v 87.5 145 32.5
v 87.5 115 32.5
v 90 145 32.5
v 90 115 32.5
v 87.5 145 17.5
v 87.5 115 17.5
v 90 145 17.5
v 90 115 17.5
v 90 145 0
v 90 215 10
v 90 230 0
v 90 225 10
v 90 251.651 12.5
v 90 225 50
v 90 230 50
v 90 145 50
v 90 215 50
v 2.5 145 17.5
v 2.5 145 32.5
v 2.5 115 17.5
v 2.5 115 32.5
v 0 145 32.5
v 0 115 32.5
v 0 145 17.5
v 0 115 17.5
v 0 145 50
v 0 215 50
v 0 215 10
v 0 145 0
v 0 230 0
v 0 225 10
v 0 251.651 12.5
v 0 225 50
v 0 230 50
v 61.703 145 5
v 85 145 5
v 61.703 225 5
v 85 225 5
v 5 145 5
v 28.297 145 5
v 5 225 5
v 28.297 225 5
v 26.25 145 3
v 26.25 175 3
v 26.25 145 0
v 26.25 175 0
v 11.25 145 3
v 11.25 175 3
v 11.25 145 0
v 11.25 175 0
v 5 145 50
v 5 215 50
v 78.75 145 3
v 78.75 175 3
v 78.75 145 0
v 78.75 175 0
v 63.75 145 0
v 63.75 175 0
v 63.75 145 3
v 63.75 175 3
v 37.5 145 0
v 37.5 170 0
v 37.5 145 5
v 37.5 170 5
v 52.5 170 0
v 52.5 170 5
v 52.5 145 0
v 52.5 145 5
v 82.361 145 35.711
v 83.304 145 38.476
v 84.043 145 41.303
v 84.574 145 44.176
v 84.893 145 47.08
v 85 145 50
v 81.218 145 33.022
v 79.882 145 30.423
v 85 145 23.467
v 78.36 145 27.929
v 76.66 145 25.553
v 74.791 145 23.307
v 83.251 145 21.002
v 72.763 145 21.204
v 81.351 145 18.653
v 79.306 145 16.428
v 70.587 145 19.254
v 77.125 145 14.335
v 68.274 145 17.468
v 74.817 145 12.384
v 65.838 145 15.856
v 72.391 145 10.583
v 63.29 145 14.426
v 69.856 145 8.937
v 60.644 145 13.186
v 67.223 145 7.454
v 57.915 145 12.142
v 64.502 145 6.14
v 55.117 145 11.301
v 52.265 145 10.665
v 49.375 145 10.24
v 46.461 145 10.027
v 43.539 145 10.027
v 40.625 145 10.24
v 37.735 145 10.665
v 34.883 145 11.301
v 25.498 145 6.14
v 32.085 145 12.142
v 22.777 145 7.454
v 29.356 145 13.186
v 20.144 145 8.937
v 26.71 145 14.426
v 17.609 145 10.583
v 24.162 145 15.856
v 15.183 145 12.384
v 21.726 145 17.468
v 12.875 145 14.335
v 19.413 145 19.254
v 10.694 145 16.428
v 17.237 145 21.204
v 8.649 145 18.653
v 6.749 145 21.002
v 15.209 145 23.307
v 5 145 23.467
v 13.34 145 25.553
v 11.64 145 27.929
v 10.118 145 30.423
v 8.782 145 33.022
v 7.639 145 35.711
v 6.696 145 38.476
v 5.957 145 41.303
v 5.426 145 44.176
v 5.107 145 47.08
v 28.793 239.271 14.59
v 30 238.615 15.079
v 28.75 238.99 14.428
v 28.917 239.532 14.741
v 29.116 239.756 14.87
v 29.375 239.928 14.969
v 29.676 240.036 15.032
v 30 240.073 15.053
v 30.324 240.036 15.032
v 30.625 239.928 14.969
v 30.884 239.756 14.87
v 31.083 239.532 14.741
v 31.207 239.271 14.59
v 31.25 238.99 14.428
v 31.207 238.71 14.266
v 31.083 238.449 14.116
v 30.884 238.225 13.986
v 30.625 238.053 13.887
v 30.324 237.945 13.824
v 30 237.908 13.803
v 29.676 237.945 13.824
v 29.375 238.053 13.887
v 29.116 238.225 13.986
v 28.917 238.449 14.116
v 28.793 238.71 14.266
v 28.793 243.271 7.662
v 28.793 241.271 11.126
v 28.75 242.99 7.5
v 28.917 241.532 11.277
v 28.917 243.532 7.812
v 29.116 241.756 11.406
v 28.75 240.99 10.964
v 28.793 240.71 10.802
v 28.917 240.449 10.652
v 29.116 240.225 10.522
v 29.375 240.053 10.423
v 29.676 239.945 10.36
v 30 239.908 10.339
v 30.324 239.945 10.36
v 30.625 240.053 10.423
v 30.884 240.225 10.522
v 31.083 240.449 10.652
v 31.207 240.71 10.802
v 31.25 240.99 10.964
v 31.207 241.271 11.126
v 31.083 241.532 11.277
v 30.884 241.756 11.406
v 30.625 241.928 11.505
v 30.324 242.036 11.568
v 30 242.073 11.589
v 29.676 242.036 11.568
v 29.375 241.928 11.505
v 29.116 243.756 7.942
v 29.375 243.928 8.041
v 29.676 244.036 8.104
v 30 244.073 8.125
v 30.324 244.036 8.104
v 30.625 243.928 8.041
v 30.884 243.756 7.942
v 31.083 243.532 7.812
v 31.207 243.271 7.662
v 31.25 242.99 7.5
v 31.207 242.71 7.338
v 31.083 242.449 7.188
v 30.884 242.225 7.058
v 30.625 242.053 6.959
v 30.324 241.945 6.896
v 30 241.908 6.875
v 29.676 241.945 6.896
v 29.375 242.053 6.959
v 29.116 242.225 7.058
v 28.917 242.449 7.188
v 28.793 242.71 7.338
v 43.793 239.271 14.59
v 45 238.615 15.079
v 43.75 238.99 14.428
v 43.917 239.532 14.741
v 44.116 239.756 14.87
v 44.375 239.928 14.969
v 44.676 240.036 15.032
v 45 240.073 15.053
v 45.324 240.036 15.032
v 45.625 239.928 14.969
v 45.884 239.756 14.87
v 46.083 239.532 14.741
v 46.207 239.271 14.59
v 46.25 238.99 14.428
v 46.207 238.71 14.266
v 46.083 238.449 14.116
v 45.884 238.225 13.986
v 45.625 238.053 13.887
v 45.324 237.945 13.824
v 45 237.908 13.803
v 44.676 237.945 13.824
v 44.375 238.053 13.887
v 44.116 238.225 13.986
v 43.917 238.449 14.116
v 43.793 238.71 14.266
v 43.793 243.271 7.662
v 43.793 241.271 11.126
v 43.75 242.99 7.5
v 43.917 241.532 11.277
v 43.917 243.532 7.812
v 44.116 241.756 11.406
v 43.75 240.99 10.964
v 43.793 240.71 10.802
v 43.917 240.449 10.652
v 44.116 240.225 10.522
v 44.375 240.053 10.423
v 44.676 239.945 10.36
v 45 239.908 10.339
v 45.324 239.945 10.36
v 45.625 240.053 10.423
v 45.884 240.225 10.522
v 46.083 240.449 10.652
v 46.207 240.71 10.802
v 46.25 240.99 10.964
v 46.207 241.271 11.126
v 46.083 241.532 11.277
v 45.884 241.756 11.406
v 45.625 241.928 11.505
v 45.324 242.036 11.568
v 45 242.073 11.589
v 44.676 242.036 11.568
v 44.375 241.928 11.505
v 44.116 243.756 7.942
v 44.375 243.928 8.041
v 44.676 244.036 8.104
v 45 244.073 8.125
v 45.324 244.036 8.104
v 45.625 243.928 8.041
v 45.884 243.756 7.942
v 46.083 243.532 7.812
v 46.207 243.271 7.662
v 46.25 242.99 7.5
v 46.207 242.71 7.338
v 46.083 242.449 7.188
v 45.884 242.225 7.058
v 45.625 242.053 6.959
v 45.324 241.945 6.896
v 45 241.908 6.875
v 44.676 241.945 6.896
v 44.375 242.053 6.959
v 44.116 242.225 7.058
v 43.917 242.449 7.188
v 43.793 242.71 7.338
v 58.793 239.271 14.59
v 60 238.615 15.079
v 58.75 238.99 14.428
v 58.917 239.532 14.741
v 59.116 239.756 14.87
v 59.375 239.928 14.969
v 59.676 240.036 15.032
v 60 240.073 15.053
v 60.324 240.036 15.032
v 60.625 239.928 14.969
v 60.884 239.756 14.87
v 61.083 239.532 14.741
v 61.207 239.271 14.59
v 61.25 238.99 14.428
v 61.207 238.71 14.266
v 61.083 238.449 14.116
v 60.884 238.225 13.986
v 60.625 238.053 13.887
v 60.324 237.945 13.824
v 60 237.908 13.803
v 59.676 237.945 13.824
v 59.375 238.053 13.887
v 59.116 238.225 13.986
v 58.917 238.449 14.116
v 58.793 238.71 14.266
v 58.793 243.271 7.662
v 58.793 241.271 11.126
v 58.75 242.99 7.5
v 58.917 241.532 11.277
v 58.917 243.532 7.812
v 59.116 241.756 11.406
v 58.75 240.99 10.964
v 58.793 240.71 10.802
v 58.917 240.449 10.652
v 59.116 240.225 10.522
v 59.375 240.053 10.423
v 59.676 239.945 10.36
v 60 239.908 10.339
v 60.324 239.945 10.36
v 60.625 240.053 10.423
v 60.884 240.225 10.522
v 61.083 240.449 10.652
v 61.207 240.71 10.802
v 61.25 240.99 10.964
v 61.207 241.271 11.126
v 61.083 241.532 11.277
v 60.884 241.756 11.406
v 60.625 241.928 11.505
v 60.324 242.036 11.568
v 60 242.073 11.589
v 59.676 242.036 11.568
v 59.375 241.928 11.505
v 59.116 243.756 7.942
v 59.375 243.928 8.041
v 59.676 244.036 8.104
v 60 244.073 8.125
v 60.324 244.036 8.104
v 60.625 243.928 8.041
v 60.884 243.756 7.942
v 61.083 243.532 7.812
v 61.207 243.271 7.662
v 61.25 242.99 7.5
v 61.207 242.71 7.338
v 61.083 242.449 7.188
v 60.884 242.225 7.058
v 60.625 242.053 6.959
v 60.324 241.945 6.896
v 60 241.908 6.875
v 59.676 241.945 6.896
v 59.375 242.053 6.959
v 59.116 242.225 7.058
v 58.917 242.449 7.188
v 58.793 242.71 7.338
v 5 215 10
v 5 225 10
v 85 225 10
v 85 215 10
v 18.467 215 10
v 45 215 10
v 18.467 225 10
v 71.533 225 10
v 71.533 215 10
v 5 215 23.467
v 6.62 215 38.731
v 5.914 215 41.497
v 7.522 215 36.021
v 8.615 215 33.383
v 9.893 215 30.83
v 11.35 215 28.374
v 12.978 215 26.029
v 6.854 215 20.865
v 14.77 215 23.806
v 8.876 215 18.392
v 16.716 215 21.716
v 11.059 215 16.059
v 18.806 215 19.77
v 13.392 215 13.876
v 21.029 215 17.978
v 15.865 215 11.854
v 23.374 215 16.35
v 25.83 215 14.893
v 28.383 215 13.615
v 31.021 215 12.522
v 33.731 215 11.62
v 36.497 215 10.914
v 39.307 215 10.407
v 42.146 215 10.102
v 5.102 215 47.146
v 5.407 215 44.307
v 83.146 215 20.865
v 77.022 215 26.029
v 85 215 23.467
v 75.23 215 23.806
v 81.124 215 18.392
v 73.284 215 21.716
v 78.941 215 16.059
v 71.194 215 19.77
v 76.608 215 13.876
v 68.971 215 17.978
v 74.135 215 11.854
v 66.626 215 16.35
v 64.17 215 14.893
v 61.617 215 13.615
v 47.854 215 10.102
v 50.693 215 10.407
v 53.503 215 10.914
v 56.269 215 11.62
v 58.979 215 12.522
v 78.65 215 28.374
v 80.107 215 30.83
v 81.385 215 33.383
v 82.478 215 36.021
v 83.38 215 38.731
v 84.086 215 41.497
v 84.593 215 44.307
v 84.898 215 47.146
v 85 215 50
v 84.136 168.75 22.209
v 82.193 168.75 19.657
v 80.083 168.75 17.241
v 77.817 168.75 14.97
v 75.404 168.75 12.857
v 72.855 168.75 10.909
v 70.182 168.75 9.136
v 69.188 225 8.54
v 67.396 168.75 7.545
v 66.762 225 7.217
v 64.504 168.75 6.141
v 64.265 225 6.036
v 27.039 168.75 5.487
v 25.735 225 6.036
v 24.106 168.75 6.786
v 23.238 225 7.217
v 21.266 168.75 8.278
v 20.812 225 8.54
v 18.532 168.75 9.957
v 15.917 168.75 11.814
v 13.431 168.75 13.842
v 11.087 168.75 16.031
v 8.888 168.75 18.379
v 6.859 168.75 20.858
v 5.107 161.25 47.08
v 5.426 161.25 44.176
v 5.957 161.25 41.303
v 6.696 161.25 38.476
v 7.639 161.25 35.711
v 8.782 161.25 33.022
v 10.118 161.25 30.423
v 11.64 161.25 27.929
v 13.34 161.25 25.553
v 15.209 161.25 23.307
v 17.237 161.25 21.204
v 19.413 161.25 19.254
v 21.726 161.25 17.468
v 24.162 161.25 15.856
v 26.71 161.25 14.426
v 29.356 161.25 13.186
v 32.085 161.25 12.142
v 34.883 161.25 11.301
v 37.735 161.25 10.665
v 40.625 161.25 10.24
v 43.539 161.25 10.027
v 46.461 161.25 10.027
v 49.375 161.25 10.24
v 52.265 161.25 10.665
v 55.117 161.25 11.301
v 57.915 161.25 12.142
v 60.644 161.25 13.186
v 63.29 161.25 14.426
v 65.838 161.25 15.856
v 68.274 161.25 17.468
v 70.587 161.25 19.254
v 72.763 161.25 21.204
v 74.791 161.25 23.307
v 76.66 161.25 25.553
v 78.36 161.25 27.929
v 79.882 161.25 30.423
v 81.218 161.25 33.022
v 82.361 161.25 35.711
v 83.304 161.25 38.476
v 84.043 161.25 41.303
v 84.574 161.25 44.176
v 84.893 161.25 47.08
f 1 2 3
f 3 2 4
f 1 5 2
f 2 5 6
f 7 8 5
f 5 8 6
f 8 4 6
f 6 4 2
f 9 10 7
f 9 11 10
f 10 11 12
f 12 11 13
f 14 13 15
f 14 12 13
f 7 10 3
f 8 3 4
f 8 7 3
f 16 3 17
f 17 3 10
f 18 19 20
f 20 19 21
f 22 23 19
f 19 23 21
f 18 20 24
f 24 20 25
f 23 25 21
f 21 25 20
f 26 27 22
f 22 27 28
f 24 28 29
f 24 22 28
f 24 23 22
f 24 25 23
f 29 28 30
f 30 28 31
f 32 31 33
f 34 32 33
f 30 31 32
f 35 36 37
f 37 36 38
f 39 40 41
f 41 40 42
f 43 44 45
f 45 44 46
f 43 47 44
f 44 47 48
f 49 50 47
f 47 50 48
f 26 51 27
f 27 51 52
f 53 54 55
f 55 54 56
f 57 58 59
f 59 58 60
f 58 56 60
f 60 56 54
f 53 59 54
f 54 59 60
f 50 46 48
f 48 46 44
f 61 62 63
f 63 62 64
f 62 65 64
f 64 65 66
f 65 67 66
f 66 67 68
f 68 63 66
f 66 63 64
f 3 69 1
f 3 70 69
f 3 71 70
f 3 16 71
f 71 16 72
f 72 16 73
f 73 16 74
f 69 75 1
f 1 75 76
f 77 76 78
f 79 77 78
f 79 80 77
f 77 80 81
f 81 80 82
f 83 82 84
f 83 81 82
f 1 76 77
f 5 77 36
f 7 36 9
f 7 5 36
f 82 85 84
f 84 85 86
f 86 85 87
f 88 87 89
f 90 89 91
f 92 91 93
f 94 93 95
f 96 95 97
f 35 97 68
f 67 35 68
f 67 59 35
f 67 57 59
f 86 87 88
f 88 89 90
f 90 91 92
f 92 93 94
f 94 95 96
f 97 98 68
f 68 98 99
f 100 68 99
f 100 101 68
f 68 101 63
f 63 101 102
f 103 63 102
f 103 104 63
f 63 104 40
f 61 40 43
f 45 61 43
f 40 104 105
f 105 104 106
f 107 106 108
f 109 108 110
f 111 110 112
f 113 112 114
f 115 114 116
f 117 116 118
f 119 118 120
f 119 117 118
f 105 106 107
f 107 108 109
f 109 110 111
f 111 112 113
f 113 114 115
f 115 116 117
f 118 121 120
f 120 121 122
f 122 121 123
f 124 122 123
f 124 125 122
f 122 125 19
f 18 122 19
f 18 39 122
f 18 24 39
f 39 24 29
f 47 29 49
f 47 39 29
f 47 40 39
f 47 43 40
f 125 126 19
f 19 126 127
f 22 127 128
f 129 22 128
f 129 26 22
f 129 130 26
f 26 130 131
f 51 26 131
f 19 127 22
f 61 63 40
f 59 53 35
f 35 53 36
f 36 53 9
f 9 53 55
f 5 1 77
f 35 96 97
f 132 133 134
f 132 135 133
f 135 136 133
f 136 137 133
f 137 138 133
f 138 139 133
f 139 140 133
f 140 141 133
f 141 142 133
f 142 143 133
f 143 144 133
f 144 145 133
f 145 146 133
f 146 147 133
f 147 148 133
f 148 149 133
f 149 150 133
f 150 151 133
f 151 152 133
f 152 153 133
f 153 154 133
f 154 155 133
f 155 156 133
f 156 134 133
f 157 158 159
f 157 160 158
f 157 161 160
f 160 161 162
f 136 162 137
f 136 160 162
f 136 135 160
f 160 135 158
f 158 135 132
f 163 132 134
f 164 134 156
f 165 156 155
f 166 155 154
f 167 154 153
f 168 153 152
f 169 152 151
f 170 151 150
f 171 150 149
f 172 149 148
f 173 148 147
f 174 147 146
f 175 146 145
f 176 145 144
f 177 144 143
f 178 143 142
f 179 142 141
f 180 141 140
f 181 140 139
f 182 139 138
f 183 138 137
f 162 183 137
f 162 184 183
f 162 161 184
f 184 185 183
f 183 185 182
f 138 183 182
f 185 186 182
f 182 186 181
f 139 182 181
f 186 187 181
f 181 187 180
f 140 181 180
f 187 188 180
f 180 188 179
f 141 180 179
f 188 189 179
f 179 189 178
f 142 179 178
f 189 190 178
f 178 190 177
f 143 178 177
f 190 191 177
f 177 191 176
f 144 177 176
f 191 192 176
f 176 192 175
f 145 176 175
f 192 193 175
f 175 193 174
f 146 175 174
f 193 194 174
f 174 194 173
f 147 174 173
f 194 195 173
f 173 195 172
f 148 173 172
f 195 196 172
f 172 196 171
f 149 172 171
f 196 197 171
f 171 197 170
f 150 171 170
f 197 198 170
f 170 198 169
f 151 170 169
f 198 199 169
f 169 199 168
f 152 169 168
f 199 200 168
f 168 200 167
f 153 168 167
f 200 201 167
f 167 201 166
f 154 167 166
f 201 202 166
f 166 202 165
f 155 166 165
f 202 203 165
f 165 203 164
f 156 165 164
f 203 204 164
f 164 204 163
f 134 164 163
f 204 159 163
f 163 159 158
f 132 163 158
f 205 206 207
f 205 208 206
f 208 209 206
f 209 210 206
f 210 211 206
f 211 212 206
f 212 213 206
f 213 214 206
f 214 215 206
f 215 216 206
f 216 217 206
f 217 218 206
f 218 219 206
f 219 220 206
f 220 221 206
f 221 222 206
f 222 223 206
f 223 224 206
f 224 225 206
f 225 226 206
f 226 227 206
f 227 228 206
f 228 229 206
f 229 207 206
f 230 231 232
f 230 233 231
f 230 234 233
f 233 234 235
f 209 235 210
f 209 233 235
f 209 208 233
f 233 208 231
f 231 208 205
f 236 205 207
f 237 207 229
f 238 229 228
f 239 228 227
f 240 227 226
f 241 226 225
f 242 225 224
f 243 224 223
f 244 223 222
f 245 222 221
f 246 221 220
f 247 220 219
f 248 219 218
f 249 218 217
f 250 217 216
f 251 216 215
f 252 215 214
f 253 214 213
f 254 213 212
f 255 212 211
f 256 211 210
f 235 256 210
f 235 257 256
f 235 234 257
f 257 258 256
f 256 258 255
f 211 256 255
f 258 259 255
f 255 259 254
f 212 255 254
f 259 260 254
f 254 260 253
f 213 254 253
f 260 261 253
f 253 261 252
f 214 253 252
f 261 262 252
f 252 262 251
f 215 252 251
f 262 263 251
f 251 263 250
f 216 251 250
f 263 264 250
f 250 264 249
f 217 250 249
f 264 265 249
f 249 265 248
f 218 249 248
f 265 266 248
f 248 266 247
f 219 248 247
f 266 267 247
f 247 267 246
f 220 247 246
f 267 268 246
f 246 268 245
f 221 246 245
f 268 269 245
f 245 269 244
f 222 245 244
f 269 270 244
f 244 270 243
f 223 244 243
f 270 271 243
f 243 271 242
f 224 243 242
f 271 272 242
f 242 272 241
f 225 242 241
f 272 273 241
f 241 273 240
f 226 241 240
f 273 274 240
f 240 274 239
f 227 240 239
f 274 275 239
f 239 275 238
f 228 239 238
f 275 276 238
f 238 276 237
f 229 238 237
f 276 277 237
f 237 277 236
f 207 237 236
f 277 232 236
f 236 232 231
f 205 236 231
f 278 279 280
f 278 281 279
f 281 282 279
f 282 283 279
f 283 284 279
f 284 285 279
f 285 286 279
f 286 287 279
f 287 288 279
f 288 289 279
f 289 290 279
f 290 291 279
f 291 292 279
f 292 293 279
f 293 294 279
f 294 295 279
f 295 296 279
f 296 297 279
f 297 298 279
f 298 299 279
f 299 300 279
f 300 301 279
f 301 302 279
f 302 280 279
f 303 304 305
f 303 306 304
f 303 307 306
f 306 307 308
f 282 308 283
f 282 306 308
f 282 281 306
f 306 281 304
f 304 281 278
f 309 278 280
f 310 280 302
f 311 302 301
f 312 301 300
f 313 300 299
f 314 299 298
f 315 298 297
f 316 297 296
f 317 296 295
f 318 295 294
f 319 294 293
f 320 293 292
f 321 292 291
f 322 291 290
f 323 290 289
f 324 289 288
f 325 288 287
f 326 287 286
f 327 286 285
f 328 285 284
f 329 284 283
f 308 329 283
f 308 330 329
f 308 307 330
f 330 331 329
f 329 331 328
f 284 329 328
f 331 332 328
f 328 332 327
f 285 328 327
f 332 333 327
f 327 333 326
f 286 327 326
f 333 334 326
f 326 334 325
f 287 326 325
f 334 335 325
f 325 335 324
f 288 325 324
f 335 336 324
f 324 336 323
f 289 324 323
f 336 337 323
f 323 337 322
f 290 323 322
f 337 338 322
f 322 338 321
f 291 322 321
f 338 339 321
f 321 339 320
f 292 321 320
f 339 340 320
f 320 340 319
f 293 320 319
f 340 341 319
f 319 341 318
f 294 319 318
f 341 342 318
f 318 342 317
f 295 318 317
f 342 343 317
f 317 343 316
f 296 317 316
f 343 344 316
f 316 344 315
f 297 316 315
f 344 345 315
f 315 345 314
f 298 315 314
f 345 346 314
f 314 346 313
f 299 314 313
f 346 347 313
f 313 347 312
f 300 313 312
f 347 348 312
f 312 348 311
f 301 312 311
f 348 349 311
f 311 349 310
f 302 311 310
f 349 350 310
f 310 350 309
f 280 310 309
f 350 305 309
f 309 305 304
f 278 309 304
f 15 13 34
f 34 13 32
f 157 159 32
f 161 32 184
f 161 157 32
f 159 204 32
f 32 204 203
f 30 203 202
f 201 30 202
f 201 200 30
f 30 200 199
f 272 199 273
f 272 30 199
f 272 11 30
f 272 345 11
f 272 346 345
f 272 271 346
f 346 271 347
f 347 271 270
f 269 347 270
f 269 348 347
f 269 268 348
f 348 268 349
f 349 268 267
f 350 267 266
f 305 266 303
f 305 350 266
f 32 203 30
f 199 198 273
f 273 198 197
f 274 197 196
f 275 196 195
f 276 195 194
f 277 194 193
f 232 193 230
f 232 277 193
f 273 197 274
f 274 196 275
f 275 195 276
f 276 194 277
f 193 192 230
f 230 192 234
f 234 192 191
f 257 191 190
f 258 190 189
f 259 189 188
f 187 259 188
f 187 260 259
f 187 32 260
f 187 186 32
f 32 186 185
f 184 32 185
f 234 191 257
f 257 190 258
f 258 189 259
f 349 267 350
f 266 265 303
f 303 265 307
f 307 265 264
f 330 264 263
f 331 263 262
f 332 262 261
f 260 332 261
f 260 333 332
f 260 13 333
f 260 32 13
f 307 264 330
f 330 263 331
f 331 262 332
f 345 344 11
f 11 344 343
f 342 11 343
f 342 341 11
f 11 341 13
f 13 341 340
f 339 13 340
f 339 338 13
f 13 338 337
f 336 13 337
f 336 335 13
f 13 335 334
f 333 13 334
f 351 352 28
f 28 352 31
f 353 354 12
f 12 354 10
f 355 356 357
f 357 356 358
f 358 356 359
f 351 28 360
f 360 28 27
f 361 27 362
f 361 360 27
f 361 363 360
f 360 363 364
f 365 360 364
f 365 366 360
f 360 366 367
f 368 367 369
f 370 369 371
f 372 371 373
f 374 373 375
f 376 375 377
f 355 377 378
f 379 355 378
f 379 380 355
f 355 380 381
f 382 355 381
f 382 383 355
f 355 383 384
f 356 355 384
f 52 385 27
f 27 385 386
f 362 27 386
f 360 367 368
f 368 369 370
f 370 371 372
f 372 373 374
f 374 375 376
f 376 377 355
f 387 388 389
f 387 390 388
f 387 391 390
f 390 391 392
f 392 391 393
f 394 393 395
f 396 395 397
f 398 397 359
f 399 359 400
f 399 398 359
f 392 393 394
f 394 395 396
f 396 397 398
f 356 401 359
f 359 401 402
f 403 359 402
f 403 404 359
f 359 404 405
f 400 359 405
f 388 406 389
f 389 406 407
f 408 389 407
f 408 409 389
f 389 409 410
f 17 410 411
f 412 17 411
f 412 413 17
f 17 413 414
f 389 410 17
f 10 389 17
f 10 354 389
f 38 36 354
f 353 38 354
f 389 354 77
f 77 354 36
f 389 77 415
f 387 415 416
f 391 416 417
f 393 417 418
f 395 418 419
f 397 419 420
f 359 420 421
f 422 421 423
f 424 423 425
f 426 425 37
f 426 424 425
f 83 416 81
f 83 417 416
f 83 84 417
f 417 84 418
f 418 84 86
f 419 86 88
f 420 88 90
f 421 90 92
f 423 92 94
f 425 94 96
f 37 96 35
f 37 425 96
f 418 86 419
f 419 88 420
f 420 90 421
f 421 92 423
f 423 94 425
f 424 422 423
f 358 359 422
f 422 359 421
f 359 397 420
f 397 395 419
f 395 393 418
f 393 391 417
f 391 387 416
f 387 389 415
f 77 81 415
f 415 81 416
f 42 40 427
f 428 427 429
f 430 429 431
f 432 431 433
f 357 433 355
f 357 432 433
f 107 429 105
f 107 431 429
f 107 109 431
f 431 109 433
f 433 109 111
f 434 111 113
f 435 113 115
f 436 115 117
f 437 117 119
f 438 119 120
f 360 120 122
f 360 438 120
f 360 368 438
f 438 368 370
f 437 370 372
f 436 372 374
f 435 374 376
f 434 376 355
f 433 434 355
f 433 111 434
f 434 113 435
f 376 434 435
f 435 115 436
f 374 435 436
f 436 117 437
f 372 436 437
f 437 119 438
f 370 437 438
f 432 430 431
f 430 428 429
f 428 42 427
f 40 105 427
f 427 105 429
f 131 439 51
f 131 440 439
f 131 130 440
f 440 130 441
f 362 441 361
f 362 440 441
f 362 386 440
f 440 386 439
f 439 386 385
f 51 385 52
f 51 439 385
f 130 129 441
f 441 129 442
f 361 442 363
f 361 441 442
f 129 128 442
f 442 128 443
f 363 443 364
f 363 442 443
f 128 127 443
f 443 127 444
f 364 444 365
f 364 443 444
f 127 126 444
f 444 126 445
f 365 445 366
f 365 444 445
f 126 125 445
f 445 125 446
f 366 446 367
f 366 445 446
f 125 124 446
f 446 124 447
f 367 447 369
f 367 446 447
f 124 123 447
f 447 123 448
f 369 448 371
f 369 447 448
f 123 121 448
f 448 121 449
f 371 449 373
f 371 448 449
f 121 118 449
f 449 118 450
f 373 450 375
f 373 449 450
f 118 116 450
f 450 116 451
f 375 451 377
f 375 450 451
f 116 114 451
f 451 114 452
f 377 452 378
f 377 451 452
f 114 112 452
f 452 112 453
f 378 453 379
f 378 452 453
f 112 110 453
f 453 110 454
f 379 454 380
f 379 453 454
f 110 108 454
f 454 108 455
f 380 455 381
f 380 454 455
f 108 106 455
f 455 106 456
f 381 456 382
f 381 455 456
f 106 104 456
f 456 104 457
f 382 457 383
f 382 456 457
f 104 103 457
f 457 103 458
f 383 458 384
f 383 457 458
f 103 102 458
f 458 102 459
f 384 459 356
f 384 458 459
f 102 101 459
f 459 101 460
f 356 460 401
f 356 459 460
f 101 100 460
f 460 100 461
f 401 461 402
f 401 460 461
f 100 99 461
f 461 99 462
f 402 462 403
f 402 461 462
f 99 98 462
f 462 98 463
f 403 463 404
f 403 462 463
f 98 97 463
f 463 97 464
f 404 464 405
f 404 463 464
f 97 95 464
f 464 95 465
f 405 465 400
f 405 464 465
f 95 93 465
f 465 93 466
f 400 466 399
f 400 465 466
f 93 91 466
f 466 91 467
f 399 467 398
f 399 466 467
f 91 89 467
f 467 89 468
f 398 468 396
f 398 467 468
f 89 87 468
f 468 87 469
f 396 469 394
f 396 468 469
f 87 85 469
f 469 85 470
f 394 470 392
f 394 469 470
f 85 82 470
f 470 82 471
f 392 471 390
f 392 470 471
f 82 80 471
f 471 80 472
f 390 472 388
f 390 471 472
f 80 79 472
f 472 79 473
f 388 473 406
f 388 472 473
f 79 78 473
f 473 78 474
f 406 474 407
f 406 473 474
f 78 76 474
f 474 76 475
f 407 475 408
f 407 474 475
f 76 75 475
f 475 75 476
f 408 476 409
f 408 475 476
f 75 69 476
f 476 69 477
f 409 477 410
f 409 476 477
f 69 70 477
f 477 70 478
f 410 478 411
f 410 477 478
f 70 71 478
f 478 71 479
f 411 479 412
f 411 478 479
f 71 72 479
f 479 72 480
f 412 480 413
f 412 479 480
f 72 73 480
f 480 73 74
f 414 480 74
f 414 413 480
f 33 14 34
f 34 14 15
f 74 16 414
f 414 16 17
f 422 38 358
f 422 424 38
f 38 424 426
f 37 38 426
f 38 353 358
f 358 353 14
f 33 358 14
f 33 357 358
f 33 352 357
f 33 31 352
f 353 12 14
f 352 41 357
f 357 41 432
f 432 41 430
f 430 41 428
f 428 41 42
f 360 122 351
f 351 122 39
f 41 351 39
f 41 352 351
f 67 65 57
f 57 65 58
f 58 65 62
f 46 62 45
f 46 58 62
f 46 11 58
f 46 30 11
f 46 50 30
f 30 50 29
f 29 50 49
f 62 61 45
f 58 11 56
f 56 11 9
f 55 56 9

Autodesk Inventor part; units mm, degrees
ref_plane "YZ Plane" through (0, 0, 0) normal (1, 0, 0) x (0, 1, 0)
ref_plane "XZ Plane" through (0, 0, 0) normal (0, 1, 0) x (-1, 0, 0)
ref_plane "XY Plane" through (0, 0, 0) normal (0, 0, 1) x (1, 0, 0)
sketch "スケッチ1" plane through (0, 0, 0) normal (0, 1, 0) x (-1, 0, 0)
  line L0 (0, 0) -> (-90, 0)
  line L1 (-90, 0) -> (-90, 50)
  line L2 (0, 50) -> (0, 0)
  line L3 (0, 0) -> (-5, 0)
  line L4 (-5, 0) -> (-5, 50)
  line L5 (-5, 0) -> (-90, 0)
  line L6 (-90, 0) -> (-85, 0)
  line L7 (-85, 0) -> (-85, 50)
  arc A0 (-85, 50) -> (-5, 50) centre (-45, 50) ccw
  line L8 (0, 0) -> (0, 10)
  line L9 (0, 10) -> (-90, 10)
  circle A1 centre (-45, 50) radius 45
  line L10 (-90, 5) -> (0, 5)
  line L11 (-90, 50) -> (-85, 50)
  line L12 (-5, 50) -> (0, 50)
  line L13 (0, 0) -> (-90, 0)
  line L14 (-90, 0) -> (-90, 5)
  line L15 (-90, 5) -> (0, 5)
  line L16 (0, 5) -> (0, 0)
  dimension "d0" = 90
  dimension "d1" = 50
  dimension "d2" = 5
  dimension "d3" = 85
  dimension "d4" = 5
  dimension "d5" = 80
  dimension "d6" = 10
  dimension "d7" = 90
extrude "押し出し1" add sketch "スケッチ1" along normal blind 230 contours L0 L4 L10 L2 | L0 L7 L10 L4 | L10 L4 L9 L2 | L0 L1 L10 L7 | L10 A1 L9 L4 | L9 L4 A1 L2 | L10 L1 L9 L7 | L7 L9 A1 L10 | L9 A1 L4 | A1 L9 | A1 L4 L12 | L9 L1 A1 L7 | L7 A1 L9 | A1 L9 A0 L4 | A1 L7 A0 L9 | L11 L7 A1
sketch "スケッチ2" plane through (0, 0, 0) normal (0, -1, 0) x (1, 0, 0)
  line L0 (0, 0) -> (0, 50) projected
  line L1 (90, 0) -> (0, 0) projected
  line L2 (90, 50) -> (90, 0) projected
  line L3 (85, 50) -> (90, 50) projected
  arc A0 (5, 50) -> (85, 50) centre (45, 50) ccw projected
  line L4 (0, 50) -> (5, 50) projected
  arc A1 (5, 23.467) -> (85, 23.467) centre (45, 50) ccw
  line L5 (0, 5) -> (90, 5)
  line L6 (5, 23.467) -> (5, 5)
  line L7 (85, 23.467) -> (85, 5)
  dimension "d29" = 48
extrude "押し出し2" cut sketch "スケッチ2" against normal blind 225 contours L6 A1 L5 | L5 A1 L7
sketch "スケッチ3" plane through (0, 230, 0) normal (0, 1, 0) x (1, 0, 0)
  arc A0 (85, -50) -> (5, -50) centre (45, -50) ccw projected
  line L0 (90, -50) -> (90, 0) projected
  line L1 (0, -50) -> (5, -50) projected
  arc A1 (85, -50) -> (5, -50) centre (45, -50) ccw
  line L2 (5, -50) -> (85, -50)
extrude "押し出し3" add sketch "スケッチ3" against normal blind 5
sketch "スケッチ4" plane through (90, 0, 50) normal (1, 0, 0) x (0, 0, -1)
  line L0 (0, 0) -> (50, 0) projected
  line L1 (0, 0) -> (0, 230) projected
  line L2 (25, 0) -> (25, 65)
  line L3 (25, 65) -> (25, 75)
  line L4 (25, 75) -> (25, 215)
  line L5 (25, 215) -> (25, 225)
  line L6 (0, 65) -> (40, 65)
  line L7 (40, 65) -> (40, 75)
  line L8 (40, 75) -> (0, 75)
  line L9 (0, 75) -> (0, 65)
  line L10 (0, 215) -> (40, 215)
  line L11 (40, 215) -> (40, 225)
  line L12 (40, 225) -> (0, 225)
  line L13 (0, 225) -> (0, 215)
  dimension "d16" = 65
  dimension "d17" = 10
  dimension "d18" = 140
  dimension "d19" = 10
  dimension "d20" = 40
extrude "押し出し4" cut sketch "スケッチ4" against normal blind 90 contours L1 L8 L3 L6 | L3 L8 L7 L6 | L1 L12 L5 L10 | L5 L12 L11 L10
sketch "スケッチ6" plane through (90, 0, 50) normal (1, 0, 0) x (0, 0, -1)
  line L0 (0, 230) -> (50, 230) projected
  line L1 (50, 230) -> (37.5, 251.6506)
  line L2 (50, 230) -> (110, 230) construction
  line L3 (0, 230) -> (37.5, 251.6506)
  line L4 (0, 230) -> (43.3013, 230) construction
  dimension "d32" = 120
  dimension "d33" = 30
extrude "押し出し6" add sketch "スケッチ6" against normal blind 90
sketch "スケッチ9" plane through (0, 0, 0) normal (-1, 0, 0) x (0, 0, 1)
  line L0 (10, 225) -> (50, 225) projected
  line L1 (50, 225) -> (50, 230) projected
  line L2 (50, 230) -> (12.5, 251.6506) projected
  line L3 (12.5, 251.6506) -> (0, 230) projected
  line L4 (0, 0) -> (0, 230) projected
  line L5 (0, 0) -> (50, 0) projected
  line L6 (50, 0) -> (50, 65) projected
  line L7 (50, 65) -> (10, 65) projected
  line L8 (10, 65) -> (10, 75) projected
  line L9 (10, 75) -> (50, 75) projected
  line L10 (50, 75) -> (50, 215) projected
  line L11 (50, 215) -> (10, 215) projected
  line L12 (10, 215) -> (10, 225) projected
  line L13 (12.5, 251.6506) -> (0, 230)
  line L14 (0, 230) -> (-132.7906, 0)
  line L15 (0, 145) -> (-49.0748, 145)
  line L16 (0, 115) -> (-66.3953, 115)
  dimension "d45" = 30
sketch "スケッチ10" plane through (0, 0, 0) normal (-1, 0, 0) x (0, 0, 1)
  line L0 (10, 225) -> (50, 225) projected
  line L1 (50, 225) -> (50, 230) projected
  line L2 (50, 230) -> (12.5, 251.6506) projected
  line L3 (12.5, 251.6506) -> (0, 230) projected
  line L4 (0, 0) -> (0, 230) projected
  line L5 (0, 0) -> (50, 0) projected
  line L6 (50, 0) -> (50, 65) projected
  line L7 (50, 65) -> (10, 65) projected
  line L8 (10, 65) -> (10, 75) projected
  line L9 (10, 75) -> (50, 75) projected
  line L10 (50, 75) -> (50, 215) projected
  line L11 (50, 215) -> (10, 215) projected
  line L12 (10, 215) -> (10, 225) projected
  line L13 (12.5, 251.6506) -> (-87.5, 78.4456)
  line L14 (-87.5, 78.4456) -> (50, 0)
sketch "スケッチ11" plane through (90, 230, 0) normal (0, 0.5, -0.866) x (-1, 0, 0)
  line L0 (0, 25) -> (90, 25) projected
  line L1 (45, 25) -> (45, 15)
  line L2 (45, 15) -> (60, 15)
  line L3 (60, 15) -> (30, 15)
  point P0 (90, -199.1858)
  dimension "d49" = 10
  dimension "d50" = 15
  dimension "d51" = 30
hole "穴1" at (45, 242.9904, 7.5) at (30, 242.9904, 7.5) at (60, 242.9904, 7.5) direction (0, -0.5, 0.866) diameter 2.5 depth 8 tip angle 118
sketch "スケッチ12" plane through (90, 0, 50) normal (1, 0, 0) x (0, 0, -1)
  line L0 (50, 0) -> (50, 230) projected
  line L1 (40, 225) -> (40, 215) projected
  line L2 (0, 215) -> (0, 75)
  line L3 (0, 145) -> (50, 145)
  line L4 (32.5, 175) -> (17.5, 175)
  line L5 (17.5, 175) -> (17.5, 115)
  line L6 (17.5, 115) -> (32.5, 115)
  line L7 (32.5, 115) -> (32.5, 175)
  line L8 (32.5, 175) -> (17.5, 115) construction
  line L9 (17.5, 175) -> (32.5, 115) construction
  line L10 (17.5, 145) -> (32.5, 145)
  line L11 (32.5, 145) -> (32.5, 115)
  line L12 (32.5, 115) -> (17.5, 115)
  line L13 (17.5, 115) -> (17.5, 145)
  point P0 (25, 145)
  dimension "d59" = 15
  dimension "d60" = 60
extrude "押し出し8" cut sketch "スケッチ12" against normal blind 2.5 contours L3 L7 L6 L5
sketch "スケッチ13" plane through (0, 0, 0) normal (-1, 0, 0) x (0, 0, 1)
  line L0 (0, 0) -> (0, 230) projected
  line L1 (50, 75) -> (50, 215) projected
  line L2 (50, 145) -> (0, 145)
  line L3 (17.5, 175) -> (32.5, 175)
  line L4 (32.5, 175) -> (32.5, 115)
  line L5 (32.5, 115) -> (17.5, 115)
  line L6 (17.5, 115) -> (17.5, 175)
  line L7 (17.5, 175) -> (32.5, 115) construction
  line L8 (32.5, 175) -> (17.5, 115) construction
  line L9 (17.5, 145) -> (32.5, 145)
  line L10 (32.5, 145) -> (32.5, 115)
  line L11 (32.5, 115) -> (17.5, 115)
  line L12 (17.5, 115) -> (17.5, 145)
  point P0 (25, 145)
  dimension "d63" = 15
  dimension "d64" = 60
extrude "押し出し9" cut sketch "スケッチ13" against normal blind 2.5 contours L4 L5 L6 L2
sketch "スケッチ14" plane through (90, 0, 0) normal (0, 0, -1) x (-1, 0, 0)
  line L0 (90, 0) -> (90, 230) projected
  line L1 (0, 0) -> (0, 230) projected
  line L2 (0, 145) -> (90, 145)
  line L3 (37.5, 170) -> (52.5, 170)
  line L4 (52.5, 170) -> (52.5, 120)
  line L5 (52.5, 120) -> (37.5, 120)
  line L6 (37.5, 120) -> (37.5, 170)
  line L7 (37.5, 170) -> (52.5, 120) construction
  line L8 (52.5, 170) -> (37.5, 120) construction
  line L9 (37.5, 145) -> (52.5, 145)
  line L10 (52.5, 145) -> (52.5, 170)
  line L11 (52.5, 170) -> (37.5, 170)
  line L12 (37.5, 170) -> (37.5, 145)
  point P0 (45, 145)
  dimension "d67" = 15
  dimension "d70" = 25
extrude "押し出し10" cut sketch "スケッチ14" against normal blind 5 contours L6 L3 L4 L2
sketch "スケッチ16" plane through (90, 0, 0) normal (0, 0, -1) x (-1, 0, 0)
  line L0 (52.5, 170) -> (52.5, 145) projected
  line L1 (52.5, 145) -> (37.5, 145) projected
  line L2 (37.5, 145) -> (37.5, 170) projected
  line L3 (90, 0) -> (90, 230) projected
  line L4 (0, 0) -> (0, 230) projected
  line L5 (0, 145) -> (90, 145)
  line L6 (0, 160) -> (37.5, 157.5)
  line L7 (52.5, 157.5) -> (90, 157.5)
  line L8 (18.75, 158.75) -> (18.75, 145)
  line L9 (71.25, 145) -> (71.25, 157.5)
  line L10 (11.25, 175) -> (26.25, 175)
  line L11 (26.25, 175) -> (26.25, 115)
  line L12 (26.25, 115) -> (11.25, 115)
  line L13 (11.25, 115) -> (11.25, 175)
  line L14 (11.25, 175) -> (26.25, 115) construction
  line L15 (26.25, 175) -> (11.25, 115) construction
  line L16 (11.25, 115) -> (26.25, 115)
  line L17 (26.25, 115) -> (26.25, 175)
  line L18 (26.25, 175) -> (11.25, 175)
  line L19 (11.25, 175) -> (11.25, 115)
  line L20 (45, 145) -> (45, 125)
  line L21 (78.75, 175) -> (63.75, 175)
  line L22 (63.75, 115) -> (78.75, 115)
  line L23 (78.75, 175) -> (78.75, 115)
  line L24 (63.75, 115) -> (63.75, 175)
  line L25 (63.75, 175) -> (78.75, 175)
  line L26 (78.75, 175) -> (78.75, 115)
  line L27 (78.75, 115) -> (63.75, 115)
  line L28 (63.75, 115) -> (63.75, 175)
  line L29 (11.25, 115) -> (26.25, 115)
  line L30 (26.25, 115) -> (26.25, 175)
  line L31 (26.25, 175) -> (11.25, 175)
  line L32 (11.25, 175) -> (11.25, 115)
  dimension "d71" = 15
  dimension "d72" = 60
  dimension "d73" = 20
extrude "押し出し11" cut sketch "スケッチ16" against normal blind 3 contours L24 L21 L23 L7 | L7 L9 L5 L24 | L5 L23 L22 L24 | L7 L23 L5 L9 | L11 L12 L13 L5 | L5 L8 L6 L11 | L6 L13 L10 L11 | L5 L13 L6 L8
sketch "スケッチ17" plane through (37.5, 145, 0) normal (0, 1, 0) x (1, 0, 0)
  line L0 (-57.7643, 16.522) -> (69.053, 16.522)
  line L1 (69.053, 16.522) -> (69.053, -65.9751)
  line L2 (69.053, -65.9751) -> (-57.7643, -65.9751)
  line L3 (-57.7643, -65.9751) -> (-57.7643, 16.522)
  point P0 (-37.5, 0)
extrude "押し出し12" cut sketch "スケッチ17" against normal blind 180
sketch "スケッチ18" plane through (0, 215, 10) normal (-1, 0, 0) x (0, 0, 1)
  line L0 (-10, -70) -> (40, -70) projected
  line L1 (7.5, -40) -> (22.5, -40)
  line L2 (22.5, -40) -> (22.5, -100)
  line L3 (22.5, -100) -> (7.5, -100)
  line L4 (7.5, -100) -> (7.5, -40)
  line L5 (7.5, -40) -> (22.5, -100) construction
  line L6 (22.5, -40) -> (7.5, -100) construction
  point P0 (-10, -215)
  point P1 (15, -70)
  dimension "d78" = 15
  dimension "d79" = 60
extrude "押し出し13" add sketch "スケッチ18" against normal blind 2.5
sketch "スケッチ19" plane through (90, 215, 10) normal (1, 0, 0) x (0, 0, -1)
  line L0 (-40, -70) -> (10, -70) projected
  line L1 (-22.5, -40) -> (-7.5, -40)
  line L2 (-7.5, -40) -> (-7.5, -100)
  line L3 (-7.5, -100) -> (-22.5, -100)
  line L4 (-22.5, -100) -> (-22.5, -40)
  line L5 (-22.5, -40) -> (-7.5, -100) construction
  line L6 (-7.5, -40) -> (-22.5, -100) construction
  point P0 (10, -215)
  point P1 (-15, -70)
  dimension "d82" = 15
  dimension "d83" = 60
extrude "押し出し14" add sketch "スケッチ19" against normal blind 2.5
properties part number "知能ロボコン発射台２.1" material "ABS プラスチック"
